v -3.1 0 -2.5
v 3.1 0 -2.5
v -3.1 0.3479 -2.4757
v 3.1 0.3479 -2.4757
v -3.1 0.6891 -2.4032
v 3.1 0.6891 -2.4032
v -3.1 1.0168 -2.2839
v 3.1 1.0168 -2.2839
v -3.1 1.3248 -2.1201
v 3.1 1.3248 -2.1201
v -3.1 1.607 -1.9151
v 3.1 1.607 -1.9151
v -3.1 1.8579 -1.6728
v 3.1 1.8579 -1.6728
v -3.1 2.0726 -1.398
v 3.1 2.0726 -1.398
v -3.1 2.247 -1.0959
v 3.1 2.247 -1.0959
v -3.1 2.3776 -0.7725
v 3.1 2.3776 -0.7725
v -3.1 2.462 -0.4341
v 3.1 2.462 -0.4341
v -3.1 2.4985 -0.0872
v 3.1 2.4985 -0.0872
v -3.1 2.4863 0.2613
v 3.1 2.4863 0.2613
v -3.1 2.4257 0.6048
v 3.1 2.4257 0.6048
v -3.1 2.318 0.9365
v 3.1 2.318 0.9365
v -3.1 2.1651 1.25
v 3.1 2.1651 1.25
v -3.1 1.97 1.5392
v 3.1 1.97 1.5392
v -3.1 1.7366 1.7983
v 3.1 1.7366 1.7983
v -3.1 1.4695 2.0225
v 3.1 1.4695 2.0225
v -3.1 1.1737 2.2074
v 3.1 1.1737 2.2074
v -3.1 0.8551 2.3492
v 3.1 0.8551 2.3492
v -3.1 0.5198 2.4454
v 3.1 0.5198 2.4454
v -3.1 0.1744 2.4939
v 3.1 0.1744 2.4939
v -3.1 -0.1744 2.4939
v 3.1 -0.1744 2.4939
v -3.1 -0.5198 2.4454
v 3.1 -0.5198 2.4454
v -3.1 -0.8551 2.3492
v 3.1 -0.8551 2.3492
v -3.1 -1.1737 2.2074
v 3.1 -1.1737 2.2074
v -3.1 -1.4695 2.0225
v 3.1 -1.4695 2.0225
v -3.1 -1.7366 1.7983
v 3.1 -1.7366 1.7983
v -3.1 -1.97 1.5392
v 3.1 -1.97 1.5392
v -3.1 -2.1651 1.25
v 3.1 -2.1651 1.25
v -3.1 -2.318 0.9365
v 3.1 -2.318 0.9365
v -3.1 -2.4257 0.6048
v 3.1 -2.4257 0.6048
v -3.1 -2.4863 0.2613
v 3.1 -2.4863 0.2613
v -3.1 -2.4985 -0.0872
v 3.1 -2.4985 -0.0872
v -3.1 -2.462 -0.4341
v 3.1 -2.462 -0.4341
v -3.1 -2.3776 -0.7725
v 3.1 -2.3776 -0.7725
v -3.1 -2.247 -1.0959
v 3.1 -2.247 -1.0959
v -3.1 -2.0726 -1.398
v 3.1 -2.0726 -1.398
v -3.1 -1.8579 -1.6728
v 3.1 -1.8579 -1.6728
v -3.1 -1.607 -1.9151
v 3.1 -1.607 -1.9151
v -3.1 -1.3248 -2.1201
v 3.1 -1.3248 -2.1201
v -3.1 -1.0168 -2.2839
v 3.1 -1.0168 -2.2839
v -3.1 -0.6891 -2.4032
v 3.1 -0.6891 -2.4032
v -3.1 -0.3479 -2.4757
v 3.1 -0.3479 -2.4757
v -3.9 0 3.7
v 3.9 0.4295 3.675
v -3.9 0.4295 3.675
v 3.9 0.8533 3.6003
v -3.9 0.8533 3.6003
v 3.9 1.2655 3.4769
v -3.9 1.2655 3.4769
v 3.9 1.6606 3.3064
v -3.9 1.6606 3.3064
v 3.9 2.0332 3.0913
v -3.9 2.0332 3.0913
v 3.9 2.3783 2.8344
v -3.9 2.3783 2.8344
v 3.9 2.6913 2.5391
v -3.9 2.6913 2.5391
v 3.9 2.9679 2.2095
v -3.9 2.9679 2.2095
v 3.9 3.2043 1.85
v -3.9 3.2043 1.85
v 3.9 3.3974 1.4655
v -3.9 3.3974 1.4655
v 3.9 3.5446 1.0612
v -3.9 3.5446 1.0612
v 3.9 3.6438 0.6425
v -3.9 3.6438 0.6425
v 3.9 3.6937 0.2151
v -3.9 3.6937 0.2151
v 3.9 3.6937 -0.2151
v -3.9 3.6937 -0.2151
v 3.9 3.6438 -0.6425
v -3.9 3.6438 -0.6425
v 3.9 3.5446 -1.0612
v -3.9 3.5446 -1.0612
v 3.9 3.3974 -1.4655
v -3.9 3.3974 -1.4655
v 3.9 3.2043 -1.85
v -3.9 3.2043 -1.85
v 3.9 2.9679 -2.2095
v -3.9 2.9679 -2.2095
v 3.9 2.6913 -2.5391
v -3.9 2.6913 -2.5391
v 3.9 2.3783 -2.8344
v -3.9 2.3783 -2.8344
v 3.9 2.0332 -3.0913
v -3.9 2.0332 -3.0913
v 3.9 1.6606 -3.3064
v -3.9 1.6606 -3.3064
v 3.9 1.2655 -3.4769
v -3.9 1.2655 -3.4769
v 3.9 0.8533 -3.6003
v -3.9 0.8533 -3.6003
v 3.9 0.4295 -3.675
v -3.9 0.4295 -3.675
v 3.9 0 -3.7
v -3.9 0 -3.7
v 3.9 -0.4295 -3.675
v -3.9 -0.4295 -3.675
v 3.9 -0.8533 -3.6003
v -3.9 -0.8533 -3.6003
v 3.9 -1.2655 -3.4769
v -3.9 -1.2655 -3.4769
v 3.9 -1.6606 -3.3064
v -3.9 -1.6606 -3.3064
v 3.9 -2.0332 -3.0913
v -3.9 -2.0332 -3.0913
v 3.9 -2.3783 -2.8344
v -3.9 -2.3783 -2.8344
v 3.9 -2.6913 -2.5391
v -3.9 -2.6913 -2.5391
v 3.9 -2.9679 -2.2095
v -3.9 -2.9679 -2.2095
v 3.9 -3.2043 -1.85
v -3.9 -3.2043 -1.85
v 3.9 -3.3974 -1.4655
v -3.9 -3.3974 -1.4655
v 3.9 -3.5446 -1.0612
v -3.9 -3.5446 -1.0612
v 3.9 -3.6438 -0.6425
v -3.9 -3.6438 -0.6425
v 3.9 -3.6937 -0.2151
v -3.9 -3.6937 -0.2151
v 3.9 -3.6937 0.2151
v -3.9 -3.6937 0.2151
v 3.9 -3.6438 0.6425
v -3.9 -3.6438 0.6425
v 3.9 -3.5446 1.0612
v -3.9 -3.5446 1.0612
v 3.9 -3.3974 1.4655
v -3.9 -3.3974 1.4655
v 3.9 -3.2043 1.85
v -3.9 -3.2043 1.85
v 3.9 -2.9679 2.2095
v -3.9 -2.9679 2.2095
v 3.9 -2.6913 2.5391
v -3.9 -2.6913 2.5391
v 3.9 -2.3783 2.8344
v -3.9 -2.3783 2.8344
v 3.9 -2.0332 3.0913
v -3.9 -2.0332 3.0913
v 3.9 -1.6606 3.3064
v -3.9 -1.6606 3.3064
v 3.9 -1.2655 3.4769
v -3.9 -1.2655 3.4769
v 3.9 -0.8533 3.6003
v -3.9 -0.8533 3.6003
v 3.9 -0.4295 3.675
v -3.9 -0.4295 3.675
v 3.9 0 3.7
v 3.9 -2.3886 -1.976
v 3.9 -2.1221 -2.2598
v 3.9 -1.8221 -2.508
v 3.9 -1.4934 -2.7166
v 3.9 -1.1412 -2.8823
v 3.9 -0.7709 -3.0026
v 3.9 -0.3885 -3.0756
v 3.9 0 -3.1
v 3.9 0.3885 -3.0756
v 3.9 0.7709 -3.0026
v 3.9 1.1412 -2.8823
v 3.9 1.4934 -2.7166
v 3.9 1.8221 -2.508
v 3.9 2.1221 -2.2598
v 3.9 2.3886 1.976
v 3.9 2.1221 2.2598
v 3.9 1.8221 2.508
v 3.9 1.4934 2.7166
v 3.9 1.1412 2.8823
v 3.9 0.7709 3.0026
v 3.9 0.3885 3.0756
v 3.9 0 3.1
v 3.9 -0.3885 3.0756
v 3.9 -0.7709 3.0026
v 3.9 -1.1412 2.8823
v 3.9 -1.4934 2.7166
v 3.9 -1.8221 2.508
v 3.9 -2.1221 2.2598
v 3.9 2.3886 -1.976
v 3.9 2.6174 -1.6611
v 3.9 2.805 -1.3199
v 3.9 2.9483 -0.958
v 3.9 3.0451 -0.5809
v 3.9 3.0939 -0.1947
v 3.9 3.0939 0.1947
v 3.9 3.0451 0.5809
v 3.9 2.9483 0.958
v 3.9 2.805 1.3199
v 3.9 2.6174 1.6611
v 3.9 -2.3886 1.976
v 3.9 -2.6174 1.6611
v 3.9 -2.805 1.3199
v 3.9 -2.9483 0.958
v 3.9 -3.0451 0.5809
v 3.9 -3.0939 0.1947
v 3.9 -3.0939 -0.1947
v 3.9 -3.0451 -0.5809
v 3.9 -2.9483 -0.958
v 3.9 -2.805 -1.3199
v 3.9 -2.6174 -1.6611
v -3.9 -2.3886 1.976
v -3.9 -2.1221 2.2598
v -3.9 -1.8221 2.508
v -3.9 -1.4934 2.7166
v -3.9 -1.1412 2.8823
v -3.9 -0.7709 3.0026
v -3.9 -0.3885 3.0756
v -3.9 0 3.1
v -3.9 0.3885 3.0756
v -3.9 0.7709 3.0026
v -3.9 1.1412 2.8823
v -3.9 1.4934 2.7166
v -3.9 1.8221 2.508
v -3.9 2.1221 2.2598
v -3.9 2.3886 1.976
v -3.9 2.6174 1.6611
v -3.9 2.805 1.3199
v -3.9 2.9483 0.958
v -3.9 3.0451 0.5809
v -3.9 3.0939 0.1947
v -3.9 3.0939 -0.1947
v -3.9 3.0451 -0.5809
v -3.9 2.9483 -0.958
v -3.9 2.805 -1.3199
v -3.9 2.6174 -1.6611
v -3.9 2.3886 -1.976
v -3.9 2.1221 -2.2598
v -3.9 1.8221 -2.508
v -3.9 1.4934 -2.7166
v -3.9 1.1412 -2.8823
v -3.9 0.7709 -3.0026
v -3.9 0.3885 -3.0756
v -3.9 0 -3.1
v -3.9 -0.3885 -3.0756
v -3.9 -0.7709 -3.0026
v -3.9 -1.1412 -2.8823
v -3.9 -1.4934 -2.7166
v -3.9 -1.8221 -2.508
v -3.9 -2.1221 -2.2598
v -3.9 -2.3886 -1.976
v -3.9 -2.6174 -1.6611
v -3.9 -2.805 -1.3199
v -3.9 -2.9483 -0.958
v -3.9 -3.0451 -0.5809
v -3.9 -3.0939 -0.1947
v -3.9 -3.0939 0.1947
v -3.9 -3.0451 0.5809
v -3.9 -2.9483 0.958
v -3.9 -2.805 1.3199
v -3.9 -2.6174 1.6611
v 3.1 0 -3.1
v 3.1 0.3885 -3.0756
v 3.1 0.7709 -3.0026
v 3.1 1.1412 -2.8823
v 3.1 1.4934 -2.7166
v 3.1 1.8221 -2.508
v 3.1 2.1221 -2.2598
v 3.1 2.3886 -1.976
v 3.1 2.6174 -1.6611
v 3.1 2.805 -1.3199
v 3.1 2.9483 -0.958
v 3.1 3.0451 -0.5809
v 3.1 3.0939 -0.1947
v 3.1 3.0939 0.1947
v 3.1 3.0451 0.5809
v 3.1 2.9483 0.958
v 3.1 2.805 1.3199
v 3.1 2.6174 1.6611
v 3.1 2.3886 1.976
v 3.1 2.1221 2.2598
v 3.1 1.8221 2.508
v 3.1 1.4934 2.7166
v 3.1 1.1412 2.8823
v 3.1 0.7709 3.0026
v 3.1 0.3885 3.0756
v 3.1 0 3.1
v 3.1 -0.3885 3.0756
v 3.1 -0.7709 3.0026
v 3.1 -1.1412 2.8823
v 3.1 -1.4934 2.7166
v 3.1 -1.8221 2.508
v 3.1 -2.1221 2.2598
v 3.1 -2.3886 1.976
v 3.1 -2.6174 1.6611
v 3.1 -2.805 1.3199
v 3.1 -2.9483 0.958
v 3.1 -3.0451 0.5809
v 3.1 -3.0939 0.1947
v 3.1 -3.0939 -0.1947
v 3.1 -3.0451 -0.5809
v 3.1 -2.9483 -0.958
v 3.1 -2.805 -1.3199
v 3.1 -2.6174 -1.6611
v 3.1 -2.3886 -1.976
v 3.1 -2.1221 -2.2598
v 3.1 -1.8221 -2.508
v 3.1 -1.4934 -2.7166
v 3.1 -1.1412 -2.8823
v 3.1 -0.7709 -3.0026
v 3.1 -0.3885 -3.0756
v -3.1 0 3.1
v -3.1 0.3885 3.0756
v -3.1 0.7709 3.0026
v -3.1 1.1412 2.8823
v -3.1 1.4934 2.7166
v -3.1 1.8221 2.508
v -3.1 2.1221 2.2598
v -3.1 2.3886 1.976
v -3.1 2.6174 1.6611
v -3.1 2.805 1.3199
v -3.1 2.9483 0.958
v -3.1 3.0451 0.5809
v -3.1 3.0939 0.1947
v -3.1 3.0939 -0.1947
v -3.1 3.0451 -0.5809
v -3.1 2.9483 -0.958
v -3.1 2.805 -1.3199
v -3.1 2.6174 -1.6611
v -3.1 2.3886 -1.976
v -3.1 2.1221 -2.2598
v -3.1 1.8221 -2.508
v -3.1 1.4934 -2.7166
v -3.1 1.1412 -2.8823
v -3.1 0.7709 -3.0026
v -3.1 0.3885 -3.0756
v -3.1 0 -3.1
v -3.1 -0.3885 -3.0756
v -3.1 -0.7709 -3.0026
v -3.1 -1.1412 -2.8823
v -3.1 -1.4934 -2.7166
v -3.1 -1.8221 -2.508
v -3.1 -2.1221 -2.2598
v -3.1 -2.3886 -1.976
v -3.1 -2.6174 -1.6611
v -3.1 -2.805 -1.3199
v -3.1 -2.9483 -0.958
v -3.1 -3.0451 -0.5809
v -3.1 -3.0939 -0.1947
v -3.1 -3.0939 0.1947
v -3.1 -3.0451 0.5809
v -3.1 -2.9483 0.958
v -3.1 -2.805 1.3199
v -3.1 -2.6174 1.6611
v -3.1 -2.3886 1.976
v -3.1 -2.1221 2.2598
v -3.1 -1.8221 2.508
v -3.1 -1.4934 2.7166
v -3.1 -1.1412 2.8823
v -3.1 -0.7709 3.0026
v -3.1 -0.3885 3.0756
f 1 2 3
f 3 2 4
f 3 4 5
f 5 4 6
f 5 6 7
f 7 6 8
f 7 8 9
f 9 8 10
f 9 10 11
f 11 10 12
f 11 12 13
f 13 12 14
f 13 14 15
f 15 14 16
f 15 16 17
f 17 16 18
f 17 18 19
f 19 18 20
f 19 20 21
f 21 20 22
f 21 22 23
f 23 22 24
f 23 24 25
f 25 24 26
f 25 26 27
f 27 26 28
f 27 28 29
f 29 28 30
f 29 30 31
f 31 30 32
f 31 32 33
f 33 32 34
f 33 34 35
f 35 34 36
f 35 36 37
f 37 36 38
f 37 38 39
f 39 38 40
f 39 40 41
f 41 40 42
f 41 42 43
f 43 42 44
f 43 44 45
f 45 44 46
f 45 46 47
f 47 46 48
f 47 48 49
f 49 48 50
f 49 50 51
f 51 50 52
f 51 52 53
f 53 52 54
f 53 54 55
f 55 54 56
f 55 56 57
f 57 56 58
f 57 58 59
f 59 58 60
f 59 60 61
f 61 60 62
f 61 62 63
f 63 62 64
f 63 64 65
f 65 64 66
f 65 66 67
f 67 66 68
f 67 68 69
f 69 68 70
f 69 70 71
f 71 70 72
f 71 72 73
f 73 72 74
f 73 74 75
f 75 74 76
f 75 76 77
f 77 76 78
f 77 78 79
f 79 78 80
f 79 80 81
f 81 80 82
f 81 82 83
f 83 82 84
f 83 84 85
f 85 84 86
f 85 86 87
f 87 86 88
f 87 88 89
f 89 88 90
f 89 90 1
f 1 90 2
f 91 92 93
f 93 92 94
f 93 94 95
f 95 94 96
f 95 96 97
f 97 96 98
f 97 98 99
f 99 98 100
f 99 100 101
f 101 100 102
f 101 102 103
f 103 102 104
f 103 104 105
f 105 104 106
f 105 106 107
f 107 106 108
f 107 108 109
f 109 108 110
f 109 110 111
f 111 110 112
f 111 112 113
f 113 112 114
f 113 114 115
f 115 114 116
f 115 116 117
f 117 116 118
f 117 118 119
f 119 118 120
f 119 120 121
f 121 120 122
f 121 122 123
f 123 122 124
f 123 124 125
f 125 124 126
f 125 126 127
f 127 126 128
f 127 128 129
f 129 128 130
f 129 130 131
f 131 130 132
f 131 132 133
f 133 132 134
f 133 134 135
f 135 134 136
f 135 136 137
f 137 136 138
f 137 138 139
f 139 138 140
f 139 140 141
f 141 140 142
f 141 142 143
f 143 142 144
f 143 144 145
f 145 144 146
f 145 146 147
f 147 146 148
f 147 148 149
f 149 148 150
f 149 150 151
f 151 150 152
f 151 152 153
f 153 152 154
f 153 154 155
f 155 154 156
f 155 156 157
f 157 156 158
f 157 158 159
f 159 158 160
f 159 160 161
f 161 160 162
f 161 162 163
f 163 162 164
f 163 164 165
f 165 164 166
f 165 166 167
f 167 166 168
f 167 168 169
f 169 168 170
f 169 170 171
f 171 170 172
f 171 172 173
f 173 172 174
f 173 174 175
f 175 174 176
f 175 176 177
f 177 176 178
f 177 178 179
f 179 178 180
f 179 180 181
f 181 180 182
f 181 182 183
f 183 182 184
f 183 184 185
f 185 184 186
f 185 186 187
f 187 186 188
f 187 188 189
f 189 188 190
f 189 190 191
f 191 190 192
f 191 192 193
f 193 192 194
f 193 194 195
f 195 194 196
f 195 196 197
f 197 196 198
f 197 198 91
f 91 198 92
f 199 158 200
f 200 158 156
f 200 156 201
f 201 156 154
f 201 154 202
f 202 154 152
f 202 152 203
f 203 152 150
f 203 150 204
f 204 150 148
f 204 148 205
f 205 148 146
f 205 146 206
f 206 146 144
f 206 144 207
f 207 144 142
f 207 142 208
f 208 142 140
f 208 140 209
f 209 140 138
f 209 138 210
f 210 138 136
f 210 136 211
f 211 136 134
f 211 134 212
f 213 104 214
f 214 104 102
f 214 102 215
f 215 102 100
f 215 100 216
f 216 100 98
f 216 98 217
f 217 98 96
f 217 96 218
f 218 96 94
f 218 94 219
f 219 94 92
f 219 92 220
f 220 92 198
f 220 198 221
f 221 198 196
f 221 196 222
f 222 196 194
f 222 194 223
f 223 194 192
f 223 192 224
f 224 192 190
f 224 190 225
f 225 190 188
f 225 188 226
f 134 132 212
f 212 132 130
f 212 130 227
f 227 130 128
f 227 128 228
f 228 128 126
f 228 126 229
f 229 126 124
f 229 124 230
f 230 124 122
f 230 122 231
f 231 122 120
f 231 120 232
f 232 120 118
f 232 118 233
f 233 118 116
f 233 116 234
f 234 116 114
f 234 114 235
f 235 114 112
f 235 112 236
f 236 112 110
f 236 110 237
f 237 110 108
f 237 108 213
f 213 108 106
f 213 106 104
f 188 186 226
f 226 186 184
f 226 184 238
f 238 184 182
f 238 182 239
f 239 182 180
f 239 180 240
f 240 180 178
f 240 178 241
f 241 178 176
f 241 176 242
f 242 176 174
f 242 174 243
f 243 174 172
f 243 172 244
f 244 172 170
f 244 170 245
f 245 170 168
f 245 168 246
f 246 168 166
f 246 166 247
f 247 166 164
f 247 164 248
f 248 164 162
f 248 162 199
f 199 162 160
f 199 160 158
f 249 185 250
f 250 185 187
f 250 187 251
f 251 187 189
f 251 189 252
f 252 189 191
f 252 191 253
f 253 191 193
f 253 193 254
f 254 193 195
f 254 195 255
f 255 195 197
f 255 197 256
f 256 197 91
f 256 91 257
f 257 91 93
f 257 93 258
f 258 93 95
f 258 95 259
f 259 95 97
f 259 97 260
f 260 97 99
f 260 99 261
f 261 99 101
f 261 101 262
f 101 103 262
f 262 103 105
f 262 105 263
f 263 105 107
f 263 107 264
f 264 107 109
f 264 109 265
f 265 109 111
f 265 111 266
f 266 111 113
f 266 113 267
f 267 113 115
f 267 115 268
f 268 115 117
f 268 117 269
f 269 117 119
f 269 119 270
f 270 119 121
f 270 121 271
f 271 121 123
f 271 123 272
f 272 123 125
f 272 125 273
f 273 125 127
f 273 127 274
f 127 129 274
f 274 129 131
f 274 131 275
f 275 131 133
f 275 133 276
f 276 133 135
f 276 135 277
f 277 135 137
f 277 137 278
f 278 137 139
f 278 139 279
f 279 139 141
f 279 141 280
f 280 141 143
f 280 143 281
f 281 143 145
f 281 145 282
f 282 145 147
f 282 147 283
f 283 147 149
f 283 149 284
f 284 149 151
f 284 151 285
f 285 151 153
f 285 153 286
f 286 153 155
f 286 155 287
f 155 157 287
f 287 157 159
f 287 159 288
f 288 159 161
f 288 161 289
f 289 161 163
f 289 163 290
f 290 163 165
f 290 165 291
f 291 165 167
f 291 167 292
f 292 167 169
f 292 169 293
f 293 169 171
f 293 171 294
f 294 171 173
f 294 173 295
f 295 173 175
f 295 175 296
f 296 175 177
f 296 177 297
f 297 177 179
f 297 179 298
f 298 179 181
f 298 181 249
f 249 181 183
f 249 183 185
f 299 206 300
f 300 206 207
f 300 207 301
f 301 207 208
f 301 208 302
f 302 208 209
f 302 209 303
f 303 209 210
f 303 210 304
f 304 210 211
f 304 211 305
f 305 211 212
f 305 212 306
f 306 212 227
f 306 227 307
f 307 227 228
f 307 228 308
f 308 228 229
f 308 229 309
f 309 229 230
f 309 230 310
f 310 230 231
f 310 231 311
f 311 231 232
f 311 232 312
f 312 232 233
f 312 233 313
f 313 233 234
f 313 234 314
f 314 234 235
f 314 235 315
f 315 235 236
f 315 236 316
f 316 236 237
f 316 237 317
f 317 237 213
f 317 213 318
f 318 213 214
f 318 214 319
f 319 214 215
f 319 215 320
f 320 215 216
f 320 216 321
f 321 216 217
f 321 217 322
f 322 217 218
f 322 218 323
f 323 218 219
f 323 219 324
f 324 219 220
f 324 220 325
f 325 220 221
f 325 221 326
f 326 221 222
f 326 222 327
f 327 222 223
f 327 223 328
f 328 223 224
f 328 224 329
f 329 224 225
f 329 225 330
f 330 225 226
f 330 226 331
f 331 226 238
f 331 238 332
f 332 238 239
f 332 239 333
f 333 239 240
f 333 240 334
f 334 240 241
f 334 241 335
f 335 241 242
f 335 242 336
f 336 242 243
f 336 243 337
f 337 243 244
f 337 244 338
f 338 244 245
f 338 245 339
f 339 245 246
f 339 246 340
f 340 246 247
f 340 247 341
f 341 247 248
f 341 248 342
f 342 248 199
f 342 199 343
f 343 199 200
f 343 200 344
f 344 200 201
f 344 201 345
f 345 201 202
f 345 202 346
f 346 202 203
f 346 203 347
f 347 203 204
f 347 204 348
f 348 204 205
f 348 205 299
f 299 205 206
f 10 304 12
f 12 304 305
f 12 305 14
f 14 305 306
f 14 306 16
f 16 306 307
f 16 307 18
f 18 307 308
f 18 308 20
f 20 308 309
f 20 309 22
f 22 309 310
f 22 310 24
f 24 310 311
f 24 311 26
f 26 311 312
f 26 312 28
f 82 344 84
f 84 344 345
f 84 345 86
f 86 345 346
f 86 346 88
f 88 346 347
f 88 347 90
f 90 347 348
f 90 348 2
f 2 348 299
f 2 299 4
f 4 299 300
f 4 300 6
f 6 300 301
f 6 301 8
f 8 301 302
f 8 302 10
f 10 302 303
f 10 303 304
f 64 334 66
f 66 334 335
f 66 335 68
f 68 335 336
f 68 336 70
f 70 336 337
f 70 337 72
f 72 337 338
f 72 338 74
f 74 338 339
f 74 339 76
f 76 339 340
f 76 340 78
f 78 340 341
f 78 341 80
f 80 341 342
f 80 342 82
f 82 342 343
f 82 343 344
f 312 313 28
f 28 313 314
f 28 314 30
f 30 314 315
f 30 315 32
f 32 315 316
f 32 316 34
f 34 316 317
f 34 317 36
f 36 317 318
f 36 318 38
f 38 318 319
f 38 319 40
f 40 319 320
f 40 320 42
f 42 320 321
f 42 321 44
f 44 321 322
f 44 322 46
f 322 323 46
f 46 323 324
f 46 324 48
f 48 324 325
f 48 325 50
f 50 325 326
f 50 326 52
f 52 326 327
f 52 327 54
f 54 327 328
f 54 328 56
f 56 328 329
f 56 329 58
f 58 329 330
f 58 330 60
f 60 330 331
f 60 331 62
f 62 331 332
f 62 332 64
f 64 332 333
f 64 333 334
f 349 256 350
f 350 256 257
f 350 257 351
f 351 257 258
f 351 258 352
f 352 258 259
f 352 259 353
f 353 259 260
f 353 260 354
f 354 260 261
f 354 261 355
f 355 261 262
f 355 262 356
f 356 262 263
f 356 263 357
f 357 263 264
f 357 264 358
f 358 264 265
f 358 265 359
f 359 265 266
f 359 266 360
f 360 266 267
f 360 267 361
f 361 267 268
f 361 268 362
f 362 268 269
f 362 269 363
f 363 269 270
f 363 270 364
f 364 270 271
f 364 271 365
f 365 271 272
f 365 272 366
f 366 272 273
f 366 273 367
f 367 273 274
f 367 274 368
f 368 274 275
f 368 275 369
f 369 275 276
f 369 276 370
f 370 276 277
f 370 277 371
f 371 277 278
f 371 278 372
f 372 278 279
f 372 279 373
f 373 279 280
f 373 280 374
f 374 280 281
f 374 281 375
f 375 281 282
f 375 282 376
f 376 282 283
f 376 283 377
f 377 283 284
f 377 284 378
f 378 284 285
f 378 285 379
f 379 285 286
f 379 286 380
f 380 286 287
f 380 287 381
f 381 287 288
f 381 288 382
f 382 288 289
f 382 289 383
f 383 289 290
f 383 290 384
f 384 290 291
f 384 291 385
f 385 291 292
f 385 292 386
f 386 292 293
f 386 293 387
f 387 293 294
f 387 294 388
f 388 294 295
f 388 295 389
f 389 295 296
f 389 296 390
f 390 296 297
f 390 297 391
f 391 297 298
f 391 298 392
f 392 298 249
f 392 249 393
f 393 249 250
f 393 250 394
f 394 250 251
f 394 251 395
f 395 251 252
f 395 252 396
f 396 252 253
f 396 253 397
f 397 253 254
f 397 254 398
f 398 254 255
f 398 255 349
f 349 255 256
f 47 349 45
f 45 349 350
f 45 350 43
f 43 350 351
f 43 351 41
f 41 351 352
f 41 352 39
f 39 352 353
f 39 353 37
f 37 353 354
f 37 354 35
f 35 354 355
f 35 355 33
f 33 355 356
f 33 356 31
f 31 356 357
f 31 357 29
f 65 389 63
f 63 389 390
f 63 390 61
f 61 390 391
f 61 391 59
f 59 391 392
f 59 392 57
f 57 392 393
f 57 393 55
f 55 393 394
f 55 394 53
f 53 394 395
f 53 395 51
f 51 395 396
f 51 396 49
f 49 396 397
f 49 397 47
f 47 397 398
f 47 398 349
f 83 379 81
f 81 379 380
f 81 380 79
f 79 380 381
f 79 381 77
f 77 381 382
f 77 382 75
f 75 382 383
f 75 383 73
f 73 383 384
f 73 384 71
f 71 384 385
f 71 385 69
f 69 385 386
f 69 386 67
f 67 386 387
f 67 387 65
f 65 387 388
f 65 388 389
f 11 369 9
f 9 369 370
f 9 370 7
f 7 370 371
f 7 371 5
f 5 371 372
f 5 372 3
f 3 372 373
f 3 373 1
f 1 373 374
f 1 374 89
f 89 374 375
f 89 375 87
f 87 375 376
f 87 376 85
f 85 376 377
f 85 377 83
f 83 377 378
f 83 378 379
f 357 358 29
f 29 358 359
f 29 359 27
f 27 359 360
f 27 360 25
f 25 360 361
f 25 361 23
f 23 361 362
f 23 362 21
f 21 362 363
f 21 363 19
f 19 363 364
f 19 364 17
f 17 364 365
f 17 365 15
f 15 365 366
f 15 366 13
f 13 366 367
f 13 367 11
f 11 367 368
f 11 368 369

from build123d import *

# Parameters (mm, degrees)
SKETCH_1_R          = 3.7
EXTRUDE_1_DEPTH     = 3.9
SKETCH_2_R          = 2.5
CUT_EXTRUDE_1_DEPTH = 10.392550239
SKETCH_2_3_R        = 3.1
SKETCH_2_3_R_2      = 2.5
CUT_EXTRUDE_2_DEPTH = 0.8


with BuildPart() as part:
    # 草图1 → 凸台-拉伸1 (new, symmetric)
    with BuildSketch(Plane(origin=(0, 0, 0), x_dir=(0, 0, -1), z_dir=(1, 0, 0))):
        Circle(SKETCH_1_R)
    extrude(amount=EXTRUDE_1_DEPTH, both=True)

    # 草图2 → 切除-拉伸1 (cut, through all)
    with BuildSketch(Plane(origin=(3.9, 0, 0), x_dir=(0, 0, -1), z_dir=(1, 0, 0))):
        Circle(SKETCH_2_R)
    extrude(amount=-CUT_EXTRUDE_1_DEPTH, mode=Mode.SUBTRACT)

    # 草图2<3> → 切除-拉伸2 (cut)
    with BuildSketch(Plane(origin=(3.9, 0, 0), x_dir=(0, 0, -1), z_dir=(1, 0, 0))):
        Circle(SKETCH_2_3_R)
        Circle(SKETCH_2_3_R_2, mode=Mode.SUBTRACT)
    cut_extrude_2 = extrude(amount=-CUT_EXTRUDE_2_DEPTH, mode=Mode.SUBTRACT)

    # 镜向1: 切除-拉伸2 across plane
    add(cut_extrude_2.mirror(Plane(origin=(0, 0, 0), x_dir=(0, 0, 1), z_dir=(1, 0, 0))), mode=Mode.SUBTRACT)


solid = part.part
